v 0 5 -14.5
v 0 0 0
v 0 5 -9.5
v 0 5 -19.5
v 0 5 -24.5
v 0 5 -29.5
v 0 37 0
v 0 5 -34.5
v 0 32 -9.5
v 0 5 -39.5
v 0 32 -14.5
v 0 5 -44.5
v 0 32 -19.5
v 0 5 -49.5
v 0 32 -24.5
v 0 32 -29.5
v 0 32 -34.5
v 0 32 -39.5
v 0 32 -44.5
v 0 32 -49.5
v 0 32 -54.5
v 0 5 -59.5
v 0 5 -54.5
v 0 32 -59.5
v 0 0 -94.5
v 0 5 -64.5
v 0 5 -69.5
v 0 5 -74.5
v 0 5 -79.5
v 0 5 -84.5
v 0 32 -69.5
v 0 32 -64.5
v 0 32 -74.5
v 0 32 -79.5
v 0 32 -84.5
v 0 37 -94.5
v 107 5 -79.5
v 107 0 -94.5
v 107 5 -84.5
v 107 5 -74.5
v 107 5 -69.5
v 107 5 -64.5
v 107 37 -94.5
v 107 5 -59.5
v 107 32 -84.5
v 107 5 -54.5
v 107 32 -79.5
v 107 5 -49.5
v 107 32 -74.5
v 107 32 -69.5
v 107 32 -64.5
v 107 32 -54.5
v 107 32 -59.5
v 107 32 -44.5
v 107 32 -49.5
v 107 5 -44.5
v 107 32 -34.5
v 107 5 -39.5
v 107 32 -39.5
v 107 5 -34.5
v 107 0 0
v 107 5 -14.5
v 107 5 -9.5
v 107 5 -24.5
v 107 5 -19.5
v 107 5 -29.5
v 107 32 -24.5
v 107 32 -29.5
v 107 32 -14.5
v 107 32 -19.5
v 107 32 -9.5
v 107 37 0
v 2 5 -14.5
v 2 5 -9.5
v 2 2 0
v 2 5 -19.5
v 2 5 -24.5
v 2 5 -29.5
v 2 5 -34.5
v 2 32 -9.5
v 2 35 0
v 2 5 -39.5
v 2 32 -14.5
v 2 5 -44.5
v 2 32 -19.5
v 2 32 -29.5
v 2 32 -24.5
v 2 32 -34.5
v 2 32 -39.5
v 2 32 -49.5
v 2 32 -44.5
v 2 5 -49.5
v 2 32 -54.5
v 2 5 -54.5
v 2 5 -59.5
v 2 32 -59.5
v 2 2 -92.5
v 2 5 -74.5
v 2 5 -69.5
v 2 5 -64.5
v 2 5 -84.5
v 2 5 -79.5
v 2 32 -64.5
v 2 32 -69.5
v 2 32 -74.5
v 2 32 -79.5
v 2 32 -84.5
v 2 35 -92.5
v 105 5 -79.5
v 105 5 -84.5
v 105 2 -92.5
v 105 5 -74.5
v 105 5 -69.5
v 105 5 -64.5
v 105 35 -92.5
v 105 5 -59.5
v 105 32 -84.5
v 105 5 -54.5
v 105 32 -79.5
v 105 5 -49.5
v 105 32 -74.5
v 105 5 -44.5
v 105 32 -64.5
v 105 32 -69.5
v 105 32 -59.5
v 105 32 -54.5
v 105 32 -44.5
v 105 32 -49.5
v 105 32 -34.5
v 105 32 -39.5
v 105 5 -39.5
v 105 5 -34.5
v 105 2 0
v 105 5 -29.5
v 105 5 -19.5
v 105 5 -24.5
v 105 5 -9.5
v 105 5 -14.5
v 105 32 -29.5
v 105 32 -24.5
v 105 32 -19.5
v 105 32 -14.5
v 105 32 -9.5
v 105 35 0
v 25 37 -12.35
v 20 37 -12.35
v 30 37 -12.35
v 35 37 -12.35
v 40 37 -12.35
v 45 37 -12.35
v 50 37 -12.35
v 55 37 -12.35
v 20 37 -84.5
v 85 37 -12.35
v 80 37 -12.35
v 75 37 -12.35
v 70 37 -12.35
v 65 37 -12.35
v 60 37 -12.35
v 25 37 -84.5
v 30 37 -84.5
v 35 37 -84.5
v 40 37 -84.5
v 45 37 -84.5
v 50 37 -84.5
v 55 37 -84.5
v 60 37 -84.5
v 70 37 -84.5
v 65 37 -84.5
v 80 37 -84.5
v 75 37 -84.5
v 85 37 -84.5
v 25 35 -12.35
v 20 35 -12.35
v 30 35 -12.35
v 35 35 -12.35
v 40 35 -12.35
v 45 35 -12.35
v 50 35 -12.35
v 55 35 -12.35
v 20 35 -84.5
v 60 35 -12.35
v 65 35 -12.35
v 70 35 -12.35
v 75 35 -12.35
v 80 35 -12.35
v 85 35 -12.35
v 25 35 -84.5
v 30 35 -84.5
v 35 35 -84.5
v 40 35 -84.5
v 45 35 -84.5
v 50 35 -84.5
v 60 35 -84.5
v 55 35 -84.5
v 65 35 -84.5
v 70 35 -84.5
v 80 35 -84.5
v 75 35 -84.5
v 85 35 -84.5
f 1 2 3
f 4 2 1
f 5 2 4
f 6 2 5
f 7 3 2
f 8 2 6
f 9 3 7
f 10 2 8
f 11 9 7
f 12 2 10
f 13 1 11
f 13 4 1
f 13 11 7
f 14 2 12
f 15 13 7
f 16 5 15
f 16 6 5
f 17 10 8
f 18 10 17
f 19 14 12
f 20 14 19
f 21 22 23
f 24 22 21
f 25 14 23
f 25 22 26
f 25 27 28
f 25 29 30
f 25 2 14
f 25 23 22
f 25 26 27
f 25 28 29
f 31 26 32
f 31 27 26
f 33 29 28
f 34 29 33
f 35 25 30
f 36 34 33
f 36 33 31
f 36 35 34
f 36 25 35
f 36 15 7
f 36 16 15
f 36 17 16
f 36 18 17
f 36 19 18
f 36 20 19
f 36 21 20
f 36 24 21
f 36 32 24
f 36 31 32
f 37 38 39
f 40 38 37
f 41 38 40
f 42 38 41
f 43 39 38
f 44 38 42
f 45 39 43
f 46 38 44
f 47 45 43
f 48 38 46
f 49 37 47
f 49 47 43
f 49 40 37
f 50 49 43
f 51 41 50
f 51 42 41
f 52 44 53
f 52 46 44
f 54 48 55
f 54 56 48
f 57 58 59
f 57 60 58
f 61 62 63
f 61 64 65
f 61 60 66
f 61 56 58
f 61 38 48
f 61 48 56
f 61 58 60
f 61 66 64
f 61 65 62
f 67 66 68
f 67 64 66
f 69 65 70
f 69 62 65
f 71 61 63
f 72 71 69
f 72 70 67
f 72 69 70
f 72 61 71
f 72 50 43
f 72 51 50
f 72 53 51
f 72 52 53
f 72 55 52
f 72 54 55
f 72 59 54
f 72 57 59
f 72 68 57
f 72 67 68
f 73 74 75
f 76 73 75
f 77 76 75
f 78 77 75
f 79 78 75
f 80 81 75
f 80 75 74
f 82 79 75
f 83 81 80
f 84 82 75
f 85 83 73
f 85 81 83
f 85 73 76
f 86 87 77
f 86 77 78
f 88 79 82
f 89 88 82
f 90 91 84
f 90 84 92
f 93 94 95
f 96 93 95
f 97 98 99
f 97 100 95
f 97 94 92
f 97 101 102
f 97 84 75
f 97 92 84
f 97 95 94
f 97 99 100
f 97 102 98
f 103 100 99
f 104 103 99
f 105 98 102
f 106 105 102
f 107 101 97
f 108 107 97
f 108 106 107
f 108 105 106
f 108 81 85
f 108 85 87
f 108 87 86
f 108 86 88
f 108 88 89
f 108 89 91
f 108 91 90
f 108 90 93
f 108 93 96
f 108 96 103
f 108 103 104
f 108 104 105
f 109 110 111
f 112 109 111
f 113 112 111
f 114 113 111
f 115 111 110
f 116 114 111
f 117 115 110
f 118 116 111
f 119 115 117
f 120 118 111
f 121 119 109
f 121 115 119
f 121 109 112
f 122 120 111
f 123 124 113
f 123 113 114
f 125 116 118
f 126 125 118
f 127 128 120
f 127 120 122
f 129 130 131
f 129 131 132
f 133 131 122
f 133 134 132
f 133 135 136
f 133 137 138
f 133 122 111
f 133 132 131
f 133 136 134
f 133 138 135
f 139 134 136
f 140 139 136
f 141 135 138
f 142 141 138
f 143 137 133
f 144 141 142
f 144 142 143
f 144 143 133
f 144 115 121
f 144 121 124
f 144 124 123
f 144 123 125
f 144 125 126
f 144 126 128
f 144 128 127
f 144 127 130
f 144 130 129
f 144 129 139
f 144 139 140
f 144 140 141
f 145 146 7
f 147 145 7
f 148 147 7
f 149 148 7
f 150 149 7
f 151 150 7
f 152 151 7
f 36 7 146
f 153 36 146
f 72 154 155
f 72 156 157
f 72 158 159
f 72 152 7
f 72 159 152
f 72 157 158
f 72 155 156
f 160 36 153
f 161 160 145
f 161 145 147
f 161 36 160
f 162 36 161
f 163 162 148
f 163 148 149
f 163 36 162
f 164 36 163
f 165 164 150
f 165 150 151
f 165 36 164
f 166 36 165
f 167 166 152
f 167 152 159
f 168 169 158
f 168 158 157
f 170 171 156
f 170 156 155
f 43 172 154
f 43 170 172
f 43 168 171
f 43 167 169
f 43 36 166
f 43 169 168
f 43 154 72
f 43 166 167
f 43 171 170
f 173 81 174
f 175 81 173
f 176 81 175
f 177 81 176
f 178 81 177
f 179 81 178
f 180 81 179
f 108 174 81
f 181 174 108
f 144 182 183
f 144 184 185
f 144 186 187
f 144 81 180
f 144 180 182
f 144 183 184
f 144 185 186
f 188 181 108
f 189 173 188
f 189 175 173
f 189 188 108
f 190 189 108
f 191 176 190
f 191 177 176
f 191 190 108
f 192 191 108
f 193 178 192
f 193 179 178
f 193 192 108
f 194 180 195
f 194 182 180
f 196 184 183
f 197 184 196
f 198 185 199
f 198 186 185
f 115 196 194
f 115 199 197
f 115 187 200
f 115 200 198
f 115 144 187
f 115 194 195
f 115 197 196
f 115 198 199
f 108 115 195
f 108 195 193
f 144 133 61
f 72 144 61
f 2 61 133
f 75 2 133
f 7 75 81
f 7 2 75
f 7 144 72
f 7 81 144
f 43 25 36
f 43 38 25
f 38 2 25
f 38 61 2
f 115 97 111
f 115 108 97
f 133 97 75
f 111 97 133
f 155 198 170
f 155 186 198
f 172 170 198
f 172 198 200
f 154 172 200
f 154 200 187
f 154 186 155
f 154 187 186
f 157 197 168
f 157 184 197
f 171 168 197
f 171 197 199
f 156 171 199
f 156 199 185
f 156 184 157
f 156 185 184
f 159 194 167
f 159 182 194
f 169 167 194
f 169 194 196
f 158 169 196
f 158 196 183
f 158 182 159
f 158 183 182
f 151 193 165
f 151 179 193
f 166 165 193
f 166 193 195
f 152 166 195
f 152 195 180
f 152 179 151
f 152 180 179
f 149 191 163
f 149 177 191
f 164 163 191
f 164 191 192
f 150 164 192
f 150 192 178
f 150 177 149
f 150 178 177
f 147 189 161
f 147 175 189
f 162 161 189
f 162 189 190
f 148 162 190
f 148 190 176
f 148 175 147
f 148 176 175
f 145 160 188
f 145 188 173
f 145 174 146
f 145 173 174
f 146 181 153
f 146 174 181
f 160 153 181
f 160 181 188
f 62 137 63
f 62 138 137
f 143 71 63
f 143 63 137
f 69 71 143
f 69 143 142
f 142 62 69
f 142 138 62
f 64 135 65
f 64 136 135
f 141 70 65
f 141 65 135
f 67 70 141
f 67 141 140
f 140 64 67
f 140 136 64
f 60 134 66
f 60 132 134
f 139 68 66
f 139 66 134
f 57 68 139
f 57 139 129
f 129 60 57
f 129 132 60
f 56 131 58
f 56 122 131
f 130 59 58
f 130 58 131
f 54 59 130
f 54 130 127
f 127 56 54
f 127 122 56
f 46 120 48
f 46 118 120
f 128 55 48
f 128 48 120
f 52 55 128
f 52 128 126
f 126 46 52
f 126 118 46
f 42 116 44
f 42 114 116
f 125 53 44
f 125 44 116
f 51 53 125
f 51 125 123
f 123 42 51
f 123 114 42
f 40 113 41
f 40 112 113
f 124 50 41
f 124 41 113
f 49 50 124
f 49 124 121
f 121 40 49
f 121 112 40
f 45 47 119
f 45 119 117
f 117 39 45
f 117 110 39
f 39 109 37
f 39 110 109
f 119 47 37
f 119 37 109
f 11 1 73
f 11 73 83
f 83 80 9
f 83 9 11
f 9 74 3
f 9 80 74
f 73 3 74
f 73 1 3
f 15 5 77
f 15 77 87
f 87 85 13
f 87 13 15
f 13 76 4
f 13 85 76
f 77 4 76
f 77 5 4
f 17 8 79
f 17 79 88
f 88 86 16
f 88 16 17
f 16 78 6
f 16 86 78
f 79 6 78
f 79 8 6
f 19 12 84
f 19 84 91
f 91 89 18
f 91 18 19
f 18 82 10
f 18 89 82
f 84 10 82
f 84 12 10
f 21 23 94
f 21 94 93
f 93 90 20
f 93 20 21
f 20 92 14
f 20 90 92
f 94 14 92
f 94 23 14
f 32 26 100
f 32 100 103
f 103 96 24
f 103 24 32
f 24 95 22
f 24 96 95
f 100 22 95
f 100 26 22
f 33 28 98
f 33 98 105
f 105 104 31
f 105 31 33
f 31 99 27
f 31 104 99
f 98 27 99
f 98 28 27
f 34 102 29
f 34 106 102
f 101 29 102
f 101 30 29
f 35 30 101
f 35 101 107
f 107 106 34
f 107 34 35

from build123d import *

# Parameters (mm, degrees)
SKETCH_1_W          = 107
SKETCH_1_H          = 94.5
EXTRUDE_1_DEPTH     = 37
SHELL_1_T           = -2
SKETCH_2_W          = 5
SKETCH_2_H          = 72.15042502
CUT_EXTRUDE_3_DEPTH = 20
SKETCH_6_W          = 5
SKETCH_6_H          = 27
CUT_EXTRUDE_4_DEPTH = 1000


with BuildPart() as part:
    # 草图1 → 凸台-拉伸1 (new body)
    with BuildSketch(Plane(origin=(0, 0, 0), x_dir=(1, 0, 0), z_dir=(0, 1, 0))):
        with Locations((53.5, 47.25)):
            Rectangle(SKETCH_1_W, SKETCH_1_H)
    extrude(amount=EXTRUDE_1_DEPTH)

    # 抽壳1
    shell_1_openings = [part.faces().sort_by_distance(p)[0] for p in [
        (53.5, 18.5, 0),
    ]]
    offset(amount=SHELL_1_T, openings=shell_1_openings, kind=Kind.INTERSECTION)

    # 草图2 → 切除-拉伸3 (cut)
    with BuildSketch(Plane(origin=(0, 37, 0), x_dir=(1, 0, 0), z_dir=(0, 1, 0))):
        with Locations((22.5, 48.42478749)):
            Rectangle(SKETCH_2_W, SKETCH_2_H)
        with Locations((32.5, 48.42478749)):
            Rectangle(SKETCH_2_W, SKETCH_2_H)
        with Locations((42.5, 48.42478749)):
            Rectangle(SKETCH_2_W, SKETCH_2_H)
        with Locations((52.5, 48.42478749)):
            Rectangle(SKETCH_2_W, SKETCH_2_H)
        with Locations((62.5, 48.42478749)):
            Rectangle(SKETCH_2_W, SKETCH_2_H)
        with Locations((72.5, 48.42478749)):
            Rectangle(SKETCH_2_W, SKETCH_2_H)
        with Locations((82.5, 48.42478749)):
            Rectangle(SKETCH_2_W, SKETCH_2_H)
    extrude(amount=-CUT_EXTRUDE_3_DEPTH, mode=Mode.SUBTRACT)

    # 草图6 → 切除-拉伸4 (cut)
    with BuildSketch(Plane.ZY):
        with Locations((-82, 18.5)):
            Rectangle(SKETCH_6_W, SKETCH_6_H)
        with Locations((-72, 18.5)):
            Rectangle(SKETCH_6_W, SKETCH_6_H)
        with Locations((-62, 18.5)):
            Rectangle(SKETCH_6_W, SKETCH_6_H)
        with Locations((-52, 18.5)):
            Rectangle(SKETCH_6_W, SKETCH_6_H)
        with Locations((-42, 18.5)):
            Rectangle(SKETCH_6_W, SKETCH_6_H)
        with Locations((-32, 18.5)):
            Rectangle(SKETCH_6_W, SKETCH_6_H)
        with Locations((-22, 18.5)):
            Rectangle(SKETCH_6_W, SKETCH_6_H)
        with Locations((-12, 18.5)):
            Rectangle(SKETCH_6_W, SKETCH_6_H)
    extrude(amount=-CUT_EXTRUDE_4_DEPTH, mode=Mode.SUBTRACT)


solid = part.part
